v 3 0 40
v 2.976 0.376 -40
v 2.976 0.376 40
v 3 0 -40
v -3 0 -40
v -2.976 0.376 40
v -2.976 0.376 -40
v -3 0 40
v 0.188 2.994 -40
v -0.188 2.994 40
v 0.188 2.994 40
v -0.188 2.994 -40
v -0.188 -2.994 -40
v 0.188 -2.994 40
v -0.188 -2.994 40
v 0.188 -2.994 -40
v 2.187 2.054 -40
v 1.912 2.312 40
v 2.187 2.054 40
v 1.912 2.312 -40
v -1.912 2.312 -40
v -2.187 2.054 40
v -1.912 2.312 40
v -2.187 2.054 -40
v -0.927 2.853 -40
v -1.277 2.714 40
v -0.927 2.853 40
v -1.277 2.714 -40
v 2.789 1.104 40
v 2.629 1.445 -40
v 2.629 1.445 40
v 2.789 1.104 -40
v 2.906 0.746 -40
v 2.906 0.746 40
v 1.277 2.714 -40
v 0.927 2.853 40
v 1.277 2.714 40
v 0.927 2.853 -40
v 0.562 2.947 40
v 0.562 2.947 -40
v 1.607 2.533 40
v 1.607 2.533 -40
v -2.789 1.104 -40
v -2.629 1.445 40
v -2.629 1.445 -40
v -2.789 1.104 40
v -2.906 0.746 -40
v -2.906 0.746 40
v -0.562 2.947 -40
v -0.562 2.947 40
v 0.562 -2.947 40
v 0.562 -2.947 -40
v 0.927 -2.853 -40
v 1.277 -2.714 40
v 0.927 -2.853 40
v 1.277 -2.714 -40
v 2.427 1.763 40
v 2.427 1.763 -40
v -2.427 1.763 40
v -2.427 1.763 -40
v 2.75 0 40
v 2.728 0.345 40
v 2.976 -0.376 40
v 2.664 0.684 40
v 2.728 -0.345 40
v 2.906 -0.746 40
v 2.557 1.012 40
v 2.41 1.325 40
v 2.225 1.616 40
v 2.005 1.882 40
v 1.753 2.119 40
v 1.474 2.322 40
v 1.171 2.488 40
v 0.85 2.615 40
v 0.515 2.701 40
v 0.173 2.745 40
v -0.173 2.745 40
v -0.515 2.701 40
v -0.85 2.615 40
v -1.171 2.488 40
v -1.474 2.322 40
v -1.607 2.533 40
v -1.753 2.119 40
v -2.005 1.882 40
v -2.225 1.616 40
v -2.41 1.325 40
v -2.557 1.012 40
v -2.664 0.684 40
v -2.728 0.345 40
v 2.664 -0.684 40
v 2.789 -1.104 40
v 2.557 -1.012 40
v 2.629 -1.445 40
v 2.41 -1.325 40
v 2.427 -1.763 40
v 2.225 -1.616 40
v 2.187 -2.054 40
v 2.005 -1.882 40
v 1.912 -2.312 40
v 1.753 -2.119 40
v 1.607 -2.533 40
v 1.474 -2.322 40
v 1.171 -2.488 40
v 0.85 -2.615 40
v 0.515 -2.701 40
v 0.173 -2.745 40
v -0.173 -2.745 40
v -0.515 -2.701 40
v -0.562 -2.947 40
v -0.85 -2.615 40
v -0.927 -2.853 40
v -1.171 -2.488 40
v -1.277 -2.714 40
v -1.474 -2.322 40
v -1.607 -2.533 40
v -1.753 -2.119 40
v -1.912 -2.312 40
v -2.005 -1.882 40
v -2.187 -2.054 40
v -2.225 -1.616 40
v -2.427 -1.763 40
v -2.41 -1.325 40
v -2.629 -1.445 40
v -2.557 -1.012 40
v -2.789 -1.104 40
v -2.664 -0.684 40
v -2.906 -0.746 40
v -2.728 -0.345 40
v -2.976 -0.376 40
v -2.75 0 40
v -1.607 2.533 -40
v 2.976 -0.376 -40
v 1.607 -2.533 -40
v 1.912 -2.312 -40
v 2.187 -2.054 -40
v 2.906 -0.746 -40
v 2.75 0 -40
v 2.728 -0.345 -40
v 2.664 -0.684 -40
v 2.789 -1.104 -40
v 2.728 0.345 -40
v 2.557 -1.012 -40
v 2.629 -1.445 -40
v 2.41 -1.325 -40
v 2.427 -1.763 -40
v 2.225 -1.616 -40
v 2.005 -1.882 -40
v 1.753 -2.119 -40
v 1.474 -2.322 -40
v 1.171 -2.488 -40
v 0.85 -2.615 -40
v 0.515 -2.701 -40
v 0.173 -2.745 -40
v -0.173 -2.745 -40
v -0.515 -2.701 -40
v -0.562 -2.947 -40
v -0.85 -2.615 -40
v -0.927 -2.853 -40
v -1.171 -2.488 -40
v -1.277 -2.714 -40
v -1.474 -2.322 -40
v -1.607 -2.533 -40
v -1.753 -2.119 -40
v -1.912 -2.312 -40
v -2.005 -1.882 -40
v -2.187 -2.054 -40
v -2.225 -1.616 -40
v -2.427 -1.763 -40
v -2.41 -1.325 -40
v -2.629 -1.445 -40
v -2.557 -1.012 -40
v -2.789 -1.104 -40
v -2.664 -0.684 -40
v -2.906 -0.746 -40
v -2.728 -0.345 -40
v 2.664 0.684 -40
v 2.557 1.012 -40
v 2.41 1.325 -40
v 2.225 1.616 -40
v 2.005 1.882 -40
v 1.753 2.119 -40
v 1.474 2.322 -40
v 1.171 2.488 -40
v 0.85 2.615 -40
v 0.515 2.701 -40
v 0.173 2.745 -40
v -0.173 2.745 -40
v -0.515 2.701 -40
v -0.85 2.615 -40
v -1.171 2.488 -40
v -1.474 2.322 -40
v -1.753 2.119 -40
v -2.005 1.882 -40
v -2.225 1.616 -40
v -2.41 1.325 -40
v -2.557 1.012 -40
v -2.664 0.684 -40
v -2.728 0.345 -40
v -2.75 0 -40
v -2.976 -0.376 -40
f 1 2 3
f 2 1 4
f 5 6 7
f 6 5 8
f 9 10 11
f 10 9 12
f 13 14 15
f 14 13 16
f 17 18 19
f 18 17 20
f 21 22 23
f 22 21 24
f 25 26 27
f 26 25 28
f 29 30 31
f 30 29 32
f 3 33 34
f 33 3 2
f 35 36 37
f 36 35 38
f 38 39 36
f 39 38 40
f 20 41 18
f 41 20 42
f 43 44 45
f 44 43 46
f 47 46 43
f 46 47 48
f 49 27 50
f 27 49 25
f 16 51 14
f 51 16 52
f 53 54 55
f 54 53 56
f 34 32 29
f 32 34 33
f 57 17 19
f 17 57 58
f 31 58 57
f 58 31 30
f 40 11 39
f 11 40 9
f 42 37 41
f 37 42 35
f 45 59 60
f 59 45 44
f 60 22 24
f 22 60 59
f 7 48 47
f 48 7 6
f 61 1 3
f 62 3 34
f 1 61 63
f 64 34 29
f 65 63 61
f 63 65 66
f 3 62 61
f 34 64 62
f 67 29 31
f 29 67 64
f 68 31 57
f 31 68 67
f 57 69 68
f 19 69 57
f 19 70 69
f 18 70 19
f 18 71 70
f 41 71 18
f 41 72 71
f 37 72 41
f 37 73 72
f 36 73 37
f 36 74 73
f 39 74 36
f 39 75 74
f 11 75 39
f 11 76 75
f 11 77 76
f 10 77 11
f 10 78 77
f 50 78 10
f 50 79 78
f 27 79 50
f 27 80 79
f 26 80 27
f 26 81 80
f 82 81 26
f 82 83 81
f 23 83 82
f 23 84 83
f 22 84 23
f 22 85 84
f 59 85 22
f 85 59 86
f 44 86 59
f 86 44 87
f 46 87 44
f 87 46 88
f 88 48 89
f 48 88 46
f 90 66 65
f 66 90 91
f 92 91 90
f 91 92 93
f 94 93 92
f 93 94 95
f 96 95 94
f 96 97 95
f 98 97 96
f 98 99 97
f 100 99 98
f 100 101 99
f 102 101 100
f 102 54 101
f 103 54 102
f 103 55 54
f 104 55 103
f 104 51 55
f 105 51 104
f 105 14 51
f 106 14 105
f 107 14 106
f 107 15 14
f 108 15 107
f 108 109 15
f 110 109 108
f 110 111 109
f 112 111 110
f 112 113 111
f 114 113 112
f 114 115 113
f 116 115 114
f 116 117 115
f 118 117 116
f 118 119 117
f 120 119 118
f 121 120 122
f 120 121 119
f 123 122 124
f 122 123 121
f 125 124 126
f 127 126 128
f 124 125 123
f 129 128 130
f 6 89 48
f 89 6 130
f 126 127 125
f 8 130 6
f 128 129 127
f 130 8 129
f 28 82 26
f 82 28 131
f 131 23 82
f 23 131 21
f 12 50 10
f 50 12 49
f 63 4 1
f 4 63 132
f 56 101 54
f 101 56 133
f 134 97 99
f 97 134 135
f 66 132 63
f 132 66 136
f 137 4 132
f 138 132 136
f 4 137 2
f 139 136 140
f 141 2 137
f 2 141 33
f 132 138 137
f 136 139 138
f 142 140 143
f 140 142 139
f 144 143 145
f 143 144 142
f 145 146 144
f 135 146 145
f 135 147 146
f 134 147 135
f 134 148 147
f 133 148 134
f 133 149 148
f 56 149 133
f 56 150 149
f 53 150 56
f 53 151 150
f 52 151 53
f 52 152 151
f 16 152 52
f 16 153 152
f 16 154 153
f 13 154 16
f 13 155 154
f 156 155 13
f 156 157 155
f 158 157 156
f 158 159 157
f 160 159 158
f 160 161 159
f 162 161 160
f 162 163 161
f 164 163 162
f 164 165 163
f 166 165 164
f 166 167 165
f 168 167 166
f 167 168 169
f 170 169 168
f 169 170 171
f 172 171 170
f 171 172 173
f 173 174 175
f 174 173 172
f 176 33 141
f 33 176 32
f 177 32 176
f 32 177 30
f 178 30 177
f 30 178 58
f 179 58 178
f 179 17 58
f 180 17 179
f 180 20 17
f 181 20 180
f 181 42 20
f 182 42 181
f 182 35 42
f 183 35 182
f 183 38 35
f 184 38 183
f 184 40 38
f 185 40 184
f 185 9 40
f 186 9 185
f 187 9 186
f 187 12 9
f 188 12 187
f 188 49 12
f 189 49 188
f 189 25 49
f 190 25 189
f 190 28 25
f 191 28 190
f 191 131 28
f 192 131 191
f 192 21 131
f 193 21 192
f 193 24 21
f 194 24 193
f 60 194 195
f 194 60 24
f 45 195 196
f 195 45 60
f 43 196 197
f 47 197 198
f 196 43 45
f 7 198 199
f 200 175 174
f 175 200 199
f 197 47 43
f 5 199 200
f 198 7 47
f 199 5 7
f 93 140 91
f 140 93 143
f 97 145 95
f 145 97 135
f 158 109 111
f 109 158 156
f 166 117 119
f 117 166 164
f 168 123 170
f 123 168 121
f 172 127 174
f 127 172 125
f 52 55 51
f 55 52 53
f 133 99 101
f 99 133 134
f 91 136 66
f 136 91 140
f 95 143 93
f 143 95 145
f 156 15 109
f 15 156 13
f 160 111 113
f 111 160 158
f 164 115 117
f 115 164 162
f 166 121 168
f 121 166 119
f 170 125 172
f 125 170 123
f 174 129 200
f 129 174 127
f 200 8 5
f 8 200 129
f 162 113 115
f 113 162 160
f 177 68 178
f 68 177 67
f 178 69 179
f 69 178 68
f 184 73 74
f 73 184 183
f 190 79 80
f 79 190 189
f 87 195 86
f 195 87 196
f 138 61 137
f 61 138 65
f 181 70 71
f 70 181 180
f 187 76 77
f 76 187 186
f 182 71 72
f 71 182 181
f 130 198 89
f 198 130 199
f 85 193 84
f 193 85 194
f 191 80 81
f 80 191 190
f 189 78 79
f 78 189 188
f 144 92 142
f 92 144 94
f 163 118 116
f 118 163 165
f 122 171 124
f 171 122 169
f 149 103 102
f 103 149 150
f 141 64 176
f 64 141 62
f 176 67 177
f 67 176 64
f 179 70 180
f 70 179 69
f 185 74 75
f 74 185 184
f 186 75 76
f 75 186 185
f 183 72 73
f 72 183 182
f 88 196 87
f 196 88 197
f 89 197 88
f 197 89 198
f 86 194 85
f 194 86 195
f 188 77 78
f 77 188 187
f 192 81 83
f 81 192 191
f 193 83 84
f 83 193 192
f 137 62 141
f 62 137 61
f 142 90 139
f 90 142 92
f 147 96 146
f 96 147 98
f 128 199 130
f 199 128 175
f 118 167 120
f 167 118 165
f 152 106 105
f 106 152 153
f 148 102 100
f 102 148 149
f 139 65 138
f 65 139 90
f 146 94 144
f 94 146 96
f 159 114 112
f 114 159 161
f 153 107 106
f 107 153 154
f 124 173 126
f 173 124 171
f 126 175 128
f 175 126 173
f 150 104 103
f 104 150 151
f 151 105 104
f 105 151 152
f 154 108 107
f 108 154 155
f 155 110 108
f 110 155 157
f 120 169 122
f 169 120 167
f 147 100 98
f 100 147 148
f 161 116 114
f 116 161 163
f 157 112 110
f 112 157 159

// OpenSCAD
$fn = 50;


difference() {
	union() {
		translate(v = [0, 0, -40.0000000000]) {
			cylinder(h = 80, r = 3.0000000000);
		}
	}
	union() {
		translate(v = [0, 0, -100.0000000000]) {
			cylinder(h = 200, r = 2.7500000000);
		}
	}
}
